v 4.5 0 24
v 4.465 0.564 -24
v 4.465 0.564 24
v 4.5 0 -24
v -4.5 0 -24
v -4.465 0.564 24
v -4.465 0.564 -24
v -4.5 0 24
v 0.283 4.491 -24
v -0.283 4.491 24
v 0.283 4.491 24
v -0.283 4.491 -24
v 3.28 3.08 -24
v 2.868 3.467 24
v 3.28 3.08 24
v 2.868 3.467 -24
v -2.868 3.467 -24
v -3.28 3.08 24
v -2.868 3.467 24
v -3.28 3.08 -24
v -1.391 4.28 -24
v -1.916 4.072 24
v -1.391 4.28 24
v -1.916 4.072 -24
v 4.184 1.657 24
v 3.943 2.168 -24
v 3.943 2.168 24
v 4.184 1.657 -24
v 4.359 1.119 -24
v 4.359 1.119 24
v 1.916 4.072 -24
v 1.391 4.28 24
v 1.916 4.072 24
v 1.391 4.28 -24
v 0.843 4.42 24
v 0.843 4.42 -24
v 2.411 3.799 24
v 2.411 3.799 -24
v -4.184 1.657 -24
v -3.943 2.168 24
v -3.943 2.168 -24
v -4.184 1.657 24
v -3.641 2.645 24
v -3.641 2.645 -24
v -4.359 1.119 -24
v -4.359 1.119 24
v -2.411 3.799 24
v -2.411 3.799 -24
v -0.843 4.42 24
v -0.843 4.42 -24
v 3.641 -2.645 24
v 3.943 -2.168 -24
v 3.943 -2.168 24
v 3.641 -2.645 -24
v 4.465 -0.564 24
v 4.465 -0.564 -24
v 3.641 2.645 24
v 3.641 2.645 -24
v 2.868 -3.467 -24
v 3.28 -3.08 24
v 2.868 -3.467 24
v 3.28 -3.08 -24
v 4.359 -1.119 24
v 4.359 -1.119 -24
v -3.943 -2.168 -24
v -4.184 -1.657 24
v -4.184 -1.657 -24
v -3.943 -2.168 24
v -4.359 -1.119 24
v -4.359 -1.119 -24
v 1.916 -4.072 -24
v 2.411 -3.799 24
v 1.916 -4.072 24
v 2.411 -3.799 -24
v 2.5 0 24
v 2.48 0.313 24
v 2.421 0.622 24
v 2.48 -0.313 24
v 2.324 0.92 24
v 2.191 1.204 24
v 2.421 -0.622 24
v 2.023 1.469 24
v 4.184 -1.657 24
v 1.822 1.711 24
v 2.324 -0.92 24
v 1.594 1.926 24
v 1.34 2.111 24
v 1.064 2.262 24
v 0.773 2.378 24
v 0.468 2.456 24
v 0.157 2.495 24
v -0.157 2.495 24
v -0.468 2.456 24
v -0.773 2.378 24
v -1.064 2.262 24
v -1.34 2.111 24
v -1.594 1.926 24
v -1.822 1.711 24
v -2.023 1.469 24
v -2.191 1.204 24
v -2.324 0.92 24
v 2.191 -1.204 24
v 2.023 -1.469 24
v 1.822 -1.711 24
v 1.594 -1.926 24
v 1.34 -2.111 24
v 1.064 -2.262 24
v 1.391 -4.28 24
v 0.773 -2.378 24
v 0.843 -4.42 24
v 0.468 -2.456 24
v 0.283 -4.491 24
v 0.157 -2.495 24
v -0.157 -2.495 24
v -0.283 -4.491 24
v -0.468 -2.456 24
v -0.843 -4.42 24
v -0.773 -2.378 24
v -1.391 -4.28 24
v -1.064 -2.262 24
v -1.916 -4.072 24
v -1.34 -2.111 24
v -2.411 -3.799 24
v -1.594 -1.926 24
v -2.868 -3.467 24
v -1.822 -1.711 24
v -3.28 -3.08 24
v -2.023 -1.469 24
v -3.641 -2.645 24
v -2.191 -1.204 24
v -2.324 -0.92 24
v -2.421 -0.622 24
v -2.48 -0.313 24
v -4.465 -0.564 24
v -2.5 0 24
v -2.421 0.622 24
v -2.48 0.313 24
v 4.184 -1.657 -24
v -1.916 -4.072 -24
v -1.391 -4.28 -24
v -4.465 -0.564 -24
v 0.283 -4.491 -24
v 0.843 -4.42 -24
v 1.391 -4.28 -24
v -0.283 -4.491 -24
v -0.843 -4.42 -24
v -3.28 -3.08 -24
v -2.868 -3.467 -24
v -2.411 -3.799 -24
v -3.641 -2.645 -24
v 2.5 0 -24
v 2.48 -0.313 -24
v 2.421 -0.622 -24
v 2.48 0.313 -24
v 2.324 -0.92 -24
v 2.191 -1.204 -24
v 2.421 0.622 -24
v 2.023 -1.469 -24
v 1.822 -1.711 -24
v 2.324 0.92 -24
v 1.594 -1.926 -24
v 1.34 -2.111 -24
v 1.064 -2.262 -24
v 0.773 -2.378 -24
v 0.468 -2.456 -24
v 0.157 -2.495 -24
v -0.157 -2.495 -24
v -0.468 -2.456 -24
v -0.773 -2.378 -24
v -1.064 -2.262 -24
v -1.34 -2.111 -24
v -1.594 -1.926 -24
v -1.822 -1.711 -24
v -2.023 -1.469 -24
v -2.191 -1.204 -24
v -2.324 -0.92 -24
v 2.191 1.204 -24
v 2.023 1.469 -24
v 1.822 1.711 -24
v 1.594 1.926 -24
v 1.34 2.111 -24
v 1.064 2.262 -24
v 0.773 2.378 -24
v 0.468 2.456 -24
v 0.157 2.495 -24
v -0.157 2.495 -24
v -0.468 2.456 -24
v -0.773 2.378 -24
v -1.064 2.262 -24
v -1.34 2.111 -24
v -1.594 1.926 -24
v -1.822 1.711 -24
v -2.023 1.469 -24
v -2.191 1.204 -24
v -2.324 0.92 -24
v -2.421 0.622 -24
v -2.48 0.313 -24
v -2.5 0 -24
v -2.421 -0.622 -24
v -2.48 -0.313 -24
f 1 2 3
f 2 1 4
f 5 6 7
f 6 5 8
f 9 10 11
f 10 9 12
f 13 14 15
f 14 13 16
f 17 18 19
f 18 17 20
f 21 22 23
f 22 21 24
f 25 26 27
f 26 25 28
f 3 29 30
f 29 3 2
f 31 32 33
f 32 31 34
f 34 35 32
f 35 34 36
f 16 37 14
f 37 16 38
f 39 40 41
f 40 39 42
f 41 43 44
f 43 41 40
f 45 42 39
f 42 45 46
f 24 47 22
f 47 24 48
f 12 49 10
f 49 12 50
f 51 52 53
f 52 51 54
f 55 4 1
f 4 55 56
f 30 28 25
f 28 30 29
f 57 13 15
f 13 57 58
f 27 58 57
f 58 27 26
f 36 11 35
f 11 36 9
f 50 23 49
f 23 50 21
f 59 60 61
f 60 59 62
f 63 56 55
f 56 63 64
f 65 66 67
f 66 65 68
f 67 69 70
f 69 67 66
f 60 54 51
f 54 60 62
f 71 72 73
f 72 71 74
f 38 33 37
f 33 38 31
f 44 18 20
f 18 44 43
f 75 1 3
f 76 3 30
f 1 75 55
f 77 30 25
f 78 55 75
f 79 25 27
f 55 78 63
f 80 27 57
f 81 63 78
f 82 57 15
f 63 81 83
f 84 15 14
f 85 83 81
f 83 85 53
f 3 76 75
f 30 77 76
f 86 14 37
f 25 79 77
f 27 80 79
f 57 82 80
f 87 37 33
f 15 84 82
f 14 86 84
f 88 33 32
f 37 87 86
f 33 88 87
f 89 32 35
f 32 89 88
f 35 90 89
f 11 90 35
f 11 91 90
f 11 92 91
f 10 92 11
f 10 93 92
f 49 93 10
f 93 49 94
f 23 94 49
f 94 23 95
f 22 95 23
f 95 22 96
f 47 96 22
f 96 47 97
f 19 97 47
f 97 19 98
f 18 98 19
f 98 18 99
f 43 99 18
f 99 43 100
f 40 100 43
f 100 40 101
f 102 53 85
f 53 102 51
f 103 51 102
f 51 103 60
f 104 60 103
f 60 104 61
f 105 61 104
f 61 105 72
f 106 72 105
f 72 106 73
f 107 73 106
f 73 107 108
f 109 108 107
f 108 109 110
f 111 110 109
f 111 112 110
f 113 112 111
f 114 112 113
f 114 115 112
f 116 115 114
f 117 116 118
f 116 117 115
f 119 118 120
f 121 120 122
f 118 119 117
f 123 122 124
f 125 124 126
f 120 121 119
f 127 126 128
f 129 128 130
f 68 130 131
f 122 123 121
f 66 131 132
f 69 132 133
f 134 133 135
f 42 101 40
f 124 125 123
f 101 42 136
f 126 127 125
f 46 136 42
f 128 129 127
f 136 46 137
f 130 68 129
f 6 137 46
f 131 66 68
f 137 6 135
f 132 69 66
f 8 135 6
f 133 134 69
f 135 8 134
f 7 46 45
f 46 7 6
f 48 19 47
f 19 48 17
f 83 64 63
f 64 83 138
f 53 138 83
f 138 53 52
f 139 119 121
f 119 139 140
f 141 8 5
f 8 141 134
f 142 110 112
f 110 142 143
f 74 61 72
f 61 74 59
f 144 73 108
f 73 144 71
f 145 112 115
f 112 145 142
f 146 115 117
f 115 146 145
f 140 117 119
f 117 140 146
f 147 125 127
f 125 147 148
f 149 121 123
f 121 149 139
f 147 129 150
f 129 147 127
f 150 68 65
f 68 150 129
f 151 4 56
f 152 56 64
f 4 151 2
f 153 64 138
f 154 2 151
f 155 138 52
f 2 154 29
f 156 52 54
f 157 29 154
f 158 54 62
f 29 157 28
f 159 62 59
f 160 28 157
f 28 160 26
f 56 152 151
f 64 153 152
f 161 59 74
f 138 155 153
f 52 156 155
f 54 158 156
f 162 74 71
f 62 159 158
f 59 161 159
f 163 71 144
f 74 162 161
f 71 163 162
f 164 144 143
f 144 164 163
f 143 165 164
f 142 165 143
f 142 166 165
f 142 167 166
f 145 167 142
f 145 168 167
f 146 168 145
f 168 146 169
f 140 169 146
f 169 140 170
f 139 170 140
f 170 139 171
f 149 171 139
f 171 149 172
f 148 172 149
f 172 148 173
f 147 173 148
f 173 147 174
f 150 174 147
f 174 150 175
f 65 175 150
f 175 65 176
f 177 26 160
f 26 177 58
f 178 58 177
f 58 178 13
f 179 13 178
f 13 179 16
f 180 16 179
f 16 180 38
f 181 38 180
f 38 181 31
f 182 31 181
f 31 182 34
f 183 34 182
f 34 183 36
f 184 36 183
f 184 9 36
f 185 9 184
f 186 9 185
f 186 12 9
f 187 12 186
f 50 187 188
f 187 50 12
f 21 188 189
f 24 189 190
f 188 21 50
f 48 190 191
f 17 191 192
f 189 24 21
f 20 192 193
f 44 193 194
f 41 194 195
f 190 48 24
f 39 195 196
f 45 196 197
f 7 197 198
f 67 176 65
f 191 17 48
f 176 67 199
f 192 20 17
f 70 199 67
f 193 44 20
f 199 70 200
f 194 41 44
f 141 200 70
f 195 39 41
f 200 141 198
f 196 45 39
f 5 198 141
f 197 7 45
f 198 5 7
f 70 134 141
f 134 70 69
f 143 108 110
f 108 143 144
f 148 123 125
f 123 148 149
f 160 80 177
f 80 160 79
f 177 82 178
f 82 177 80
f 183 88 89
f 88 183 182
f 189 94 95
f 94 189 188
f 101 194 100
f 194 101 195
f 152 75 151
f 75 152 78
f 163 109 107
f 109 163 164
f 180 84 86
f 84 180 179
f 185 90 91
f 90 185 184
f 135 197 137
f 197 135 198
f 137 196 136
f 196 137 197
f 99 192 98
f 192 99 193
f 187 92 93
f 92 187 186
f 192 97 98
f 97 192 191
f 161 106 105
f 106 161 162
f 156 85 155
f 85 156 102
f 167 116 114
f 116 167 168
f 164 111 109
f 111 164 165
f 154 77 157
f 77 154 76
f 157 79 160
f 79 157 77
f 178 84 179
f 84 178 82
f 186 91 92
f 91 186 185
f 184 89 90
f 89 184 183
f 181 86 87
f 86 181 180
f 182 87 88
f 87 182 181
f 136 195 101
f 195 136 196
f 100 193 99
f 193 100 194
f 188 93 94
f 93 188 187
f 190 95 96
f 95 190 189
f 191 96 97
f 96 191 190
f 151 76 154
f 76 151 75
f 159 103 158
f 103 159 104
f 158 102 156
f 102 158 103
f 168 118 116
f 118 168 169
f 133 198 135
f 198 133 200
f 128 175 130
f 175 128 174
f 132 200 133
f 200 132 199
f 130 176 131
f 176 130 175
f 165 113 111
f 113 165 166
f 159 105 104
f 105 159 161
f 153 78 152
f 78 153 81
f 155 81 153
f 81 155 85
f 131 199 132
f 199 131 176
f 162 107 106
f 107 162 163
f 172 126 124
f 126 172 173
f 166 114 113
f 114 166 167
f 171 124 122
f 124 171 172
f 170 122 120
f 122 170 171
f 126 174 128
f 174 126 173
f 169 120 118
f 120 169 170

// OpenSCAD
$fn = 50;


difference() {
	union() {
		translate(v = [0, 0, -24.0000000000]) {
			cylinder(h = 48, r = 4.5000000000);
		}
	}
	union() {
		translate(v = [0, 0, -100.0000000000]) {
			cylinder(h = 200, r = 2.5000000000);
		}
	}
}
